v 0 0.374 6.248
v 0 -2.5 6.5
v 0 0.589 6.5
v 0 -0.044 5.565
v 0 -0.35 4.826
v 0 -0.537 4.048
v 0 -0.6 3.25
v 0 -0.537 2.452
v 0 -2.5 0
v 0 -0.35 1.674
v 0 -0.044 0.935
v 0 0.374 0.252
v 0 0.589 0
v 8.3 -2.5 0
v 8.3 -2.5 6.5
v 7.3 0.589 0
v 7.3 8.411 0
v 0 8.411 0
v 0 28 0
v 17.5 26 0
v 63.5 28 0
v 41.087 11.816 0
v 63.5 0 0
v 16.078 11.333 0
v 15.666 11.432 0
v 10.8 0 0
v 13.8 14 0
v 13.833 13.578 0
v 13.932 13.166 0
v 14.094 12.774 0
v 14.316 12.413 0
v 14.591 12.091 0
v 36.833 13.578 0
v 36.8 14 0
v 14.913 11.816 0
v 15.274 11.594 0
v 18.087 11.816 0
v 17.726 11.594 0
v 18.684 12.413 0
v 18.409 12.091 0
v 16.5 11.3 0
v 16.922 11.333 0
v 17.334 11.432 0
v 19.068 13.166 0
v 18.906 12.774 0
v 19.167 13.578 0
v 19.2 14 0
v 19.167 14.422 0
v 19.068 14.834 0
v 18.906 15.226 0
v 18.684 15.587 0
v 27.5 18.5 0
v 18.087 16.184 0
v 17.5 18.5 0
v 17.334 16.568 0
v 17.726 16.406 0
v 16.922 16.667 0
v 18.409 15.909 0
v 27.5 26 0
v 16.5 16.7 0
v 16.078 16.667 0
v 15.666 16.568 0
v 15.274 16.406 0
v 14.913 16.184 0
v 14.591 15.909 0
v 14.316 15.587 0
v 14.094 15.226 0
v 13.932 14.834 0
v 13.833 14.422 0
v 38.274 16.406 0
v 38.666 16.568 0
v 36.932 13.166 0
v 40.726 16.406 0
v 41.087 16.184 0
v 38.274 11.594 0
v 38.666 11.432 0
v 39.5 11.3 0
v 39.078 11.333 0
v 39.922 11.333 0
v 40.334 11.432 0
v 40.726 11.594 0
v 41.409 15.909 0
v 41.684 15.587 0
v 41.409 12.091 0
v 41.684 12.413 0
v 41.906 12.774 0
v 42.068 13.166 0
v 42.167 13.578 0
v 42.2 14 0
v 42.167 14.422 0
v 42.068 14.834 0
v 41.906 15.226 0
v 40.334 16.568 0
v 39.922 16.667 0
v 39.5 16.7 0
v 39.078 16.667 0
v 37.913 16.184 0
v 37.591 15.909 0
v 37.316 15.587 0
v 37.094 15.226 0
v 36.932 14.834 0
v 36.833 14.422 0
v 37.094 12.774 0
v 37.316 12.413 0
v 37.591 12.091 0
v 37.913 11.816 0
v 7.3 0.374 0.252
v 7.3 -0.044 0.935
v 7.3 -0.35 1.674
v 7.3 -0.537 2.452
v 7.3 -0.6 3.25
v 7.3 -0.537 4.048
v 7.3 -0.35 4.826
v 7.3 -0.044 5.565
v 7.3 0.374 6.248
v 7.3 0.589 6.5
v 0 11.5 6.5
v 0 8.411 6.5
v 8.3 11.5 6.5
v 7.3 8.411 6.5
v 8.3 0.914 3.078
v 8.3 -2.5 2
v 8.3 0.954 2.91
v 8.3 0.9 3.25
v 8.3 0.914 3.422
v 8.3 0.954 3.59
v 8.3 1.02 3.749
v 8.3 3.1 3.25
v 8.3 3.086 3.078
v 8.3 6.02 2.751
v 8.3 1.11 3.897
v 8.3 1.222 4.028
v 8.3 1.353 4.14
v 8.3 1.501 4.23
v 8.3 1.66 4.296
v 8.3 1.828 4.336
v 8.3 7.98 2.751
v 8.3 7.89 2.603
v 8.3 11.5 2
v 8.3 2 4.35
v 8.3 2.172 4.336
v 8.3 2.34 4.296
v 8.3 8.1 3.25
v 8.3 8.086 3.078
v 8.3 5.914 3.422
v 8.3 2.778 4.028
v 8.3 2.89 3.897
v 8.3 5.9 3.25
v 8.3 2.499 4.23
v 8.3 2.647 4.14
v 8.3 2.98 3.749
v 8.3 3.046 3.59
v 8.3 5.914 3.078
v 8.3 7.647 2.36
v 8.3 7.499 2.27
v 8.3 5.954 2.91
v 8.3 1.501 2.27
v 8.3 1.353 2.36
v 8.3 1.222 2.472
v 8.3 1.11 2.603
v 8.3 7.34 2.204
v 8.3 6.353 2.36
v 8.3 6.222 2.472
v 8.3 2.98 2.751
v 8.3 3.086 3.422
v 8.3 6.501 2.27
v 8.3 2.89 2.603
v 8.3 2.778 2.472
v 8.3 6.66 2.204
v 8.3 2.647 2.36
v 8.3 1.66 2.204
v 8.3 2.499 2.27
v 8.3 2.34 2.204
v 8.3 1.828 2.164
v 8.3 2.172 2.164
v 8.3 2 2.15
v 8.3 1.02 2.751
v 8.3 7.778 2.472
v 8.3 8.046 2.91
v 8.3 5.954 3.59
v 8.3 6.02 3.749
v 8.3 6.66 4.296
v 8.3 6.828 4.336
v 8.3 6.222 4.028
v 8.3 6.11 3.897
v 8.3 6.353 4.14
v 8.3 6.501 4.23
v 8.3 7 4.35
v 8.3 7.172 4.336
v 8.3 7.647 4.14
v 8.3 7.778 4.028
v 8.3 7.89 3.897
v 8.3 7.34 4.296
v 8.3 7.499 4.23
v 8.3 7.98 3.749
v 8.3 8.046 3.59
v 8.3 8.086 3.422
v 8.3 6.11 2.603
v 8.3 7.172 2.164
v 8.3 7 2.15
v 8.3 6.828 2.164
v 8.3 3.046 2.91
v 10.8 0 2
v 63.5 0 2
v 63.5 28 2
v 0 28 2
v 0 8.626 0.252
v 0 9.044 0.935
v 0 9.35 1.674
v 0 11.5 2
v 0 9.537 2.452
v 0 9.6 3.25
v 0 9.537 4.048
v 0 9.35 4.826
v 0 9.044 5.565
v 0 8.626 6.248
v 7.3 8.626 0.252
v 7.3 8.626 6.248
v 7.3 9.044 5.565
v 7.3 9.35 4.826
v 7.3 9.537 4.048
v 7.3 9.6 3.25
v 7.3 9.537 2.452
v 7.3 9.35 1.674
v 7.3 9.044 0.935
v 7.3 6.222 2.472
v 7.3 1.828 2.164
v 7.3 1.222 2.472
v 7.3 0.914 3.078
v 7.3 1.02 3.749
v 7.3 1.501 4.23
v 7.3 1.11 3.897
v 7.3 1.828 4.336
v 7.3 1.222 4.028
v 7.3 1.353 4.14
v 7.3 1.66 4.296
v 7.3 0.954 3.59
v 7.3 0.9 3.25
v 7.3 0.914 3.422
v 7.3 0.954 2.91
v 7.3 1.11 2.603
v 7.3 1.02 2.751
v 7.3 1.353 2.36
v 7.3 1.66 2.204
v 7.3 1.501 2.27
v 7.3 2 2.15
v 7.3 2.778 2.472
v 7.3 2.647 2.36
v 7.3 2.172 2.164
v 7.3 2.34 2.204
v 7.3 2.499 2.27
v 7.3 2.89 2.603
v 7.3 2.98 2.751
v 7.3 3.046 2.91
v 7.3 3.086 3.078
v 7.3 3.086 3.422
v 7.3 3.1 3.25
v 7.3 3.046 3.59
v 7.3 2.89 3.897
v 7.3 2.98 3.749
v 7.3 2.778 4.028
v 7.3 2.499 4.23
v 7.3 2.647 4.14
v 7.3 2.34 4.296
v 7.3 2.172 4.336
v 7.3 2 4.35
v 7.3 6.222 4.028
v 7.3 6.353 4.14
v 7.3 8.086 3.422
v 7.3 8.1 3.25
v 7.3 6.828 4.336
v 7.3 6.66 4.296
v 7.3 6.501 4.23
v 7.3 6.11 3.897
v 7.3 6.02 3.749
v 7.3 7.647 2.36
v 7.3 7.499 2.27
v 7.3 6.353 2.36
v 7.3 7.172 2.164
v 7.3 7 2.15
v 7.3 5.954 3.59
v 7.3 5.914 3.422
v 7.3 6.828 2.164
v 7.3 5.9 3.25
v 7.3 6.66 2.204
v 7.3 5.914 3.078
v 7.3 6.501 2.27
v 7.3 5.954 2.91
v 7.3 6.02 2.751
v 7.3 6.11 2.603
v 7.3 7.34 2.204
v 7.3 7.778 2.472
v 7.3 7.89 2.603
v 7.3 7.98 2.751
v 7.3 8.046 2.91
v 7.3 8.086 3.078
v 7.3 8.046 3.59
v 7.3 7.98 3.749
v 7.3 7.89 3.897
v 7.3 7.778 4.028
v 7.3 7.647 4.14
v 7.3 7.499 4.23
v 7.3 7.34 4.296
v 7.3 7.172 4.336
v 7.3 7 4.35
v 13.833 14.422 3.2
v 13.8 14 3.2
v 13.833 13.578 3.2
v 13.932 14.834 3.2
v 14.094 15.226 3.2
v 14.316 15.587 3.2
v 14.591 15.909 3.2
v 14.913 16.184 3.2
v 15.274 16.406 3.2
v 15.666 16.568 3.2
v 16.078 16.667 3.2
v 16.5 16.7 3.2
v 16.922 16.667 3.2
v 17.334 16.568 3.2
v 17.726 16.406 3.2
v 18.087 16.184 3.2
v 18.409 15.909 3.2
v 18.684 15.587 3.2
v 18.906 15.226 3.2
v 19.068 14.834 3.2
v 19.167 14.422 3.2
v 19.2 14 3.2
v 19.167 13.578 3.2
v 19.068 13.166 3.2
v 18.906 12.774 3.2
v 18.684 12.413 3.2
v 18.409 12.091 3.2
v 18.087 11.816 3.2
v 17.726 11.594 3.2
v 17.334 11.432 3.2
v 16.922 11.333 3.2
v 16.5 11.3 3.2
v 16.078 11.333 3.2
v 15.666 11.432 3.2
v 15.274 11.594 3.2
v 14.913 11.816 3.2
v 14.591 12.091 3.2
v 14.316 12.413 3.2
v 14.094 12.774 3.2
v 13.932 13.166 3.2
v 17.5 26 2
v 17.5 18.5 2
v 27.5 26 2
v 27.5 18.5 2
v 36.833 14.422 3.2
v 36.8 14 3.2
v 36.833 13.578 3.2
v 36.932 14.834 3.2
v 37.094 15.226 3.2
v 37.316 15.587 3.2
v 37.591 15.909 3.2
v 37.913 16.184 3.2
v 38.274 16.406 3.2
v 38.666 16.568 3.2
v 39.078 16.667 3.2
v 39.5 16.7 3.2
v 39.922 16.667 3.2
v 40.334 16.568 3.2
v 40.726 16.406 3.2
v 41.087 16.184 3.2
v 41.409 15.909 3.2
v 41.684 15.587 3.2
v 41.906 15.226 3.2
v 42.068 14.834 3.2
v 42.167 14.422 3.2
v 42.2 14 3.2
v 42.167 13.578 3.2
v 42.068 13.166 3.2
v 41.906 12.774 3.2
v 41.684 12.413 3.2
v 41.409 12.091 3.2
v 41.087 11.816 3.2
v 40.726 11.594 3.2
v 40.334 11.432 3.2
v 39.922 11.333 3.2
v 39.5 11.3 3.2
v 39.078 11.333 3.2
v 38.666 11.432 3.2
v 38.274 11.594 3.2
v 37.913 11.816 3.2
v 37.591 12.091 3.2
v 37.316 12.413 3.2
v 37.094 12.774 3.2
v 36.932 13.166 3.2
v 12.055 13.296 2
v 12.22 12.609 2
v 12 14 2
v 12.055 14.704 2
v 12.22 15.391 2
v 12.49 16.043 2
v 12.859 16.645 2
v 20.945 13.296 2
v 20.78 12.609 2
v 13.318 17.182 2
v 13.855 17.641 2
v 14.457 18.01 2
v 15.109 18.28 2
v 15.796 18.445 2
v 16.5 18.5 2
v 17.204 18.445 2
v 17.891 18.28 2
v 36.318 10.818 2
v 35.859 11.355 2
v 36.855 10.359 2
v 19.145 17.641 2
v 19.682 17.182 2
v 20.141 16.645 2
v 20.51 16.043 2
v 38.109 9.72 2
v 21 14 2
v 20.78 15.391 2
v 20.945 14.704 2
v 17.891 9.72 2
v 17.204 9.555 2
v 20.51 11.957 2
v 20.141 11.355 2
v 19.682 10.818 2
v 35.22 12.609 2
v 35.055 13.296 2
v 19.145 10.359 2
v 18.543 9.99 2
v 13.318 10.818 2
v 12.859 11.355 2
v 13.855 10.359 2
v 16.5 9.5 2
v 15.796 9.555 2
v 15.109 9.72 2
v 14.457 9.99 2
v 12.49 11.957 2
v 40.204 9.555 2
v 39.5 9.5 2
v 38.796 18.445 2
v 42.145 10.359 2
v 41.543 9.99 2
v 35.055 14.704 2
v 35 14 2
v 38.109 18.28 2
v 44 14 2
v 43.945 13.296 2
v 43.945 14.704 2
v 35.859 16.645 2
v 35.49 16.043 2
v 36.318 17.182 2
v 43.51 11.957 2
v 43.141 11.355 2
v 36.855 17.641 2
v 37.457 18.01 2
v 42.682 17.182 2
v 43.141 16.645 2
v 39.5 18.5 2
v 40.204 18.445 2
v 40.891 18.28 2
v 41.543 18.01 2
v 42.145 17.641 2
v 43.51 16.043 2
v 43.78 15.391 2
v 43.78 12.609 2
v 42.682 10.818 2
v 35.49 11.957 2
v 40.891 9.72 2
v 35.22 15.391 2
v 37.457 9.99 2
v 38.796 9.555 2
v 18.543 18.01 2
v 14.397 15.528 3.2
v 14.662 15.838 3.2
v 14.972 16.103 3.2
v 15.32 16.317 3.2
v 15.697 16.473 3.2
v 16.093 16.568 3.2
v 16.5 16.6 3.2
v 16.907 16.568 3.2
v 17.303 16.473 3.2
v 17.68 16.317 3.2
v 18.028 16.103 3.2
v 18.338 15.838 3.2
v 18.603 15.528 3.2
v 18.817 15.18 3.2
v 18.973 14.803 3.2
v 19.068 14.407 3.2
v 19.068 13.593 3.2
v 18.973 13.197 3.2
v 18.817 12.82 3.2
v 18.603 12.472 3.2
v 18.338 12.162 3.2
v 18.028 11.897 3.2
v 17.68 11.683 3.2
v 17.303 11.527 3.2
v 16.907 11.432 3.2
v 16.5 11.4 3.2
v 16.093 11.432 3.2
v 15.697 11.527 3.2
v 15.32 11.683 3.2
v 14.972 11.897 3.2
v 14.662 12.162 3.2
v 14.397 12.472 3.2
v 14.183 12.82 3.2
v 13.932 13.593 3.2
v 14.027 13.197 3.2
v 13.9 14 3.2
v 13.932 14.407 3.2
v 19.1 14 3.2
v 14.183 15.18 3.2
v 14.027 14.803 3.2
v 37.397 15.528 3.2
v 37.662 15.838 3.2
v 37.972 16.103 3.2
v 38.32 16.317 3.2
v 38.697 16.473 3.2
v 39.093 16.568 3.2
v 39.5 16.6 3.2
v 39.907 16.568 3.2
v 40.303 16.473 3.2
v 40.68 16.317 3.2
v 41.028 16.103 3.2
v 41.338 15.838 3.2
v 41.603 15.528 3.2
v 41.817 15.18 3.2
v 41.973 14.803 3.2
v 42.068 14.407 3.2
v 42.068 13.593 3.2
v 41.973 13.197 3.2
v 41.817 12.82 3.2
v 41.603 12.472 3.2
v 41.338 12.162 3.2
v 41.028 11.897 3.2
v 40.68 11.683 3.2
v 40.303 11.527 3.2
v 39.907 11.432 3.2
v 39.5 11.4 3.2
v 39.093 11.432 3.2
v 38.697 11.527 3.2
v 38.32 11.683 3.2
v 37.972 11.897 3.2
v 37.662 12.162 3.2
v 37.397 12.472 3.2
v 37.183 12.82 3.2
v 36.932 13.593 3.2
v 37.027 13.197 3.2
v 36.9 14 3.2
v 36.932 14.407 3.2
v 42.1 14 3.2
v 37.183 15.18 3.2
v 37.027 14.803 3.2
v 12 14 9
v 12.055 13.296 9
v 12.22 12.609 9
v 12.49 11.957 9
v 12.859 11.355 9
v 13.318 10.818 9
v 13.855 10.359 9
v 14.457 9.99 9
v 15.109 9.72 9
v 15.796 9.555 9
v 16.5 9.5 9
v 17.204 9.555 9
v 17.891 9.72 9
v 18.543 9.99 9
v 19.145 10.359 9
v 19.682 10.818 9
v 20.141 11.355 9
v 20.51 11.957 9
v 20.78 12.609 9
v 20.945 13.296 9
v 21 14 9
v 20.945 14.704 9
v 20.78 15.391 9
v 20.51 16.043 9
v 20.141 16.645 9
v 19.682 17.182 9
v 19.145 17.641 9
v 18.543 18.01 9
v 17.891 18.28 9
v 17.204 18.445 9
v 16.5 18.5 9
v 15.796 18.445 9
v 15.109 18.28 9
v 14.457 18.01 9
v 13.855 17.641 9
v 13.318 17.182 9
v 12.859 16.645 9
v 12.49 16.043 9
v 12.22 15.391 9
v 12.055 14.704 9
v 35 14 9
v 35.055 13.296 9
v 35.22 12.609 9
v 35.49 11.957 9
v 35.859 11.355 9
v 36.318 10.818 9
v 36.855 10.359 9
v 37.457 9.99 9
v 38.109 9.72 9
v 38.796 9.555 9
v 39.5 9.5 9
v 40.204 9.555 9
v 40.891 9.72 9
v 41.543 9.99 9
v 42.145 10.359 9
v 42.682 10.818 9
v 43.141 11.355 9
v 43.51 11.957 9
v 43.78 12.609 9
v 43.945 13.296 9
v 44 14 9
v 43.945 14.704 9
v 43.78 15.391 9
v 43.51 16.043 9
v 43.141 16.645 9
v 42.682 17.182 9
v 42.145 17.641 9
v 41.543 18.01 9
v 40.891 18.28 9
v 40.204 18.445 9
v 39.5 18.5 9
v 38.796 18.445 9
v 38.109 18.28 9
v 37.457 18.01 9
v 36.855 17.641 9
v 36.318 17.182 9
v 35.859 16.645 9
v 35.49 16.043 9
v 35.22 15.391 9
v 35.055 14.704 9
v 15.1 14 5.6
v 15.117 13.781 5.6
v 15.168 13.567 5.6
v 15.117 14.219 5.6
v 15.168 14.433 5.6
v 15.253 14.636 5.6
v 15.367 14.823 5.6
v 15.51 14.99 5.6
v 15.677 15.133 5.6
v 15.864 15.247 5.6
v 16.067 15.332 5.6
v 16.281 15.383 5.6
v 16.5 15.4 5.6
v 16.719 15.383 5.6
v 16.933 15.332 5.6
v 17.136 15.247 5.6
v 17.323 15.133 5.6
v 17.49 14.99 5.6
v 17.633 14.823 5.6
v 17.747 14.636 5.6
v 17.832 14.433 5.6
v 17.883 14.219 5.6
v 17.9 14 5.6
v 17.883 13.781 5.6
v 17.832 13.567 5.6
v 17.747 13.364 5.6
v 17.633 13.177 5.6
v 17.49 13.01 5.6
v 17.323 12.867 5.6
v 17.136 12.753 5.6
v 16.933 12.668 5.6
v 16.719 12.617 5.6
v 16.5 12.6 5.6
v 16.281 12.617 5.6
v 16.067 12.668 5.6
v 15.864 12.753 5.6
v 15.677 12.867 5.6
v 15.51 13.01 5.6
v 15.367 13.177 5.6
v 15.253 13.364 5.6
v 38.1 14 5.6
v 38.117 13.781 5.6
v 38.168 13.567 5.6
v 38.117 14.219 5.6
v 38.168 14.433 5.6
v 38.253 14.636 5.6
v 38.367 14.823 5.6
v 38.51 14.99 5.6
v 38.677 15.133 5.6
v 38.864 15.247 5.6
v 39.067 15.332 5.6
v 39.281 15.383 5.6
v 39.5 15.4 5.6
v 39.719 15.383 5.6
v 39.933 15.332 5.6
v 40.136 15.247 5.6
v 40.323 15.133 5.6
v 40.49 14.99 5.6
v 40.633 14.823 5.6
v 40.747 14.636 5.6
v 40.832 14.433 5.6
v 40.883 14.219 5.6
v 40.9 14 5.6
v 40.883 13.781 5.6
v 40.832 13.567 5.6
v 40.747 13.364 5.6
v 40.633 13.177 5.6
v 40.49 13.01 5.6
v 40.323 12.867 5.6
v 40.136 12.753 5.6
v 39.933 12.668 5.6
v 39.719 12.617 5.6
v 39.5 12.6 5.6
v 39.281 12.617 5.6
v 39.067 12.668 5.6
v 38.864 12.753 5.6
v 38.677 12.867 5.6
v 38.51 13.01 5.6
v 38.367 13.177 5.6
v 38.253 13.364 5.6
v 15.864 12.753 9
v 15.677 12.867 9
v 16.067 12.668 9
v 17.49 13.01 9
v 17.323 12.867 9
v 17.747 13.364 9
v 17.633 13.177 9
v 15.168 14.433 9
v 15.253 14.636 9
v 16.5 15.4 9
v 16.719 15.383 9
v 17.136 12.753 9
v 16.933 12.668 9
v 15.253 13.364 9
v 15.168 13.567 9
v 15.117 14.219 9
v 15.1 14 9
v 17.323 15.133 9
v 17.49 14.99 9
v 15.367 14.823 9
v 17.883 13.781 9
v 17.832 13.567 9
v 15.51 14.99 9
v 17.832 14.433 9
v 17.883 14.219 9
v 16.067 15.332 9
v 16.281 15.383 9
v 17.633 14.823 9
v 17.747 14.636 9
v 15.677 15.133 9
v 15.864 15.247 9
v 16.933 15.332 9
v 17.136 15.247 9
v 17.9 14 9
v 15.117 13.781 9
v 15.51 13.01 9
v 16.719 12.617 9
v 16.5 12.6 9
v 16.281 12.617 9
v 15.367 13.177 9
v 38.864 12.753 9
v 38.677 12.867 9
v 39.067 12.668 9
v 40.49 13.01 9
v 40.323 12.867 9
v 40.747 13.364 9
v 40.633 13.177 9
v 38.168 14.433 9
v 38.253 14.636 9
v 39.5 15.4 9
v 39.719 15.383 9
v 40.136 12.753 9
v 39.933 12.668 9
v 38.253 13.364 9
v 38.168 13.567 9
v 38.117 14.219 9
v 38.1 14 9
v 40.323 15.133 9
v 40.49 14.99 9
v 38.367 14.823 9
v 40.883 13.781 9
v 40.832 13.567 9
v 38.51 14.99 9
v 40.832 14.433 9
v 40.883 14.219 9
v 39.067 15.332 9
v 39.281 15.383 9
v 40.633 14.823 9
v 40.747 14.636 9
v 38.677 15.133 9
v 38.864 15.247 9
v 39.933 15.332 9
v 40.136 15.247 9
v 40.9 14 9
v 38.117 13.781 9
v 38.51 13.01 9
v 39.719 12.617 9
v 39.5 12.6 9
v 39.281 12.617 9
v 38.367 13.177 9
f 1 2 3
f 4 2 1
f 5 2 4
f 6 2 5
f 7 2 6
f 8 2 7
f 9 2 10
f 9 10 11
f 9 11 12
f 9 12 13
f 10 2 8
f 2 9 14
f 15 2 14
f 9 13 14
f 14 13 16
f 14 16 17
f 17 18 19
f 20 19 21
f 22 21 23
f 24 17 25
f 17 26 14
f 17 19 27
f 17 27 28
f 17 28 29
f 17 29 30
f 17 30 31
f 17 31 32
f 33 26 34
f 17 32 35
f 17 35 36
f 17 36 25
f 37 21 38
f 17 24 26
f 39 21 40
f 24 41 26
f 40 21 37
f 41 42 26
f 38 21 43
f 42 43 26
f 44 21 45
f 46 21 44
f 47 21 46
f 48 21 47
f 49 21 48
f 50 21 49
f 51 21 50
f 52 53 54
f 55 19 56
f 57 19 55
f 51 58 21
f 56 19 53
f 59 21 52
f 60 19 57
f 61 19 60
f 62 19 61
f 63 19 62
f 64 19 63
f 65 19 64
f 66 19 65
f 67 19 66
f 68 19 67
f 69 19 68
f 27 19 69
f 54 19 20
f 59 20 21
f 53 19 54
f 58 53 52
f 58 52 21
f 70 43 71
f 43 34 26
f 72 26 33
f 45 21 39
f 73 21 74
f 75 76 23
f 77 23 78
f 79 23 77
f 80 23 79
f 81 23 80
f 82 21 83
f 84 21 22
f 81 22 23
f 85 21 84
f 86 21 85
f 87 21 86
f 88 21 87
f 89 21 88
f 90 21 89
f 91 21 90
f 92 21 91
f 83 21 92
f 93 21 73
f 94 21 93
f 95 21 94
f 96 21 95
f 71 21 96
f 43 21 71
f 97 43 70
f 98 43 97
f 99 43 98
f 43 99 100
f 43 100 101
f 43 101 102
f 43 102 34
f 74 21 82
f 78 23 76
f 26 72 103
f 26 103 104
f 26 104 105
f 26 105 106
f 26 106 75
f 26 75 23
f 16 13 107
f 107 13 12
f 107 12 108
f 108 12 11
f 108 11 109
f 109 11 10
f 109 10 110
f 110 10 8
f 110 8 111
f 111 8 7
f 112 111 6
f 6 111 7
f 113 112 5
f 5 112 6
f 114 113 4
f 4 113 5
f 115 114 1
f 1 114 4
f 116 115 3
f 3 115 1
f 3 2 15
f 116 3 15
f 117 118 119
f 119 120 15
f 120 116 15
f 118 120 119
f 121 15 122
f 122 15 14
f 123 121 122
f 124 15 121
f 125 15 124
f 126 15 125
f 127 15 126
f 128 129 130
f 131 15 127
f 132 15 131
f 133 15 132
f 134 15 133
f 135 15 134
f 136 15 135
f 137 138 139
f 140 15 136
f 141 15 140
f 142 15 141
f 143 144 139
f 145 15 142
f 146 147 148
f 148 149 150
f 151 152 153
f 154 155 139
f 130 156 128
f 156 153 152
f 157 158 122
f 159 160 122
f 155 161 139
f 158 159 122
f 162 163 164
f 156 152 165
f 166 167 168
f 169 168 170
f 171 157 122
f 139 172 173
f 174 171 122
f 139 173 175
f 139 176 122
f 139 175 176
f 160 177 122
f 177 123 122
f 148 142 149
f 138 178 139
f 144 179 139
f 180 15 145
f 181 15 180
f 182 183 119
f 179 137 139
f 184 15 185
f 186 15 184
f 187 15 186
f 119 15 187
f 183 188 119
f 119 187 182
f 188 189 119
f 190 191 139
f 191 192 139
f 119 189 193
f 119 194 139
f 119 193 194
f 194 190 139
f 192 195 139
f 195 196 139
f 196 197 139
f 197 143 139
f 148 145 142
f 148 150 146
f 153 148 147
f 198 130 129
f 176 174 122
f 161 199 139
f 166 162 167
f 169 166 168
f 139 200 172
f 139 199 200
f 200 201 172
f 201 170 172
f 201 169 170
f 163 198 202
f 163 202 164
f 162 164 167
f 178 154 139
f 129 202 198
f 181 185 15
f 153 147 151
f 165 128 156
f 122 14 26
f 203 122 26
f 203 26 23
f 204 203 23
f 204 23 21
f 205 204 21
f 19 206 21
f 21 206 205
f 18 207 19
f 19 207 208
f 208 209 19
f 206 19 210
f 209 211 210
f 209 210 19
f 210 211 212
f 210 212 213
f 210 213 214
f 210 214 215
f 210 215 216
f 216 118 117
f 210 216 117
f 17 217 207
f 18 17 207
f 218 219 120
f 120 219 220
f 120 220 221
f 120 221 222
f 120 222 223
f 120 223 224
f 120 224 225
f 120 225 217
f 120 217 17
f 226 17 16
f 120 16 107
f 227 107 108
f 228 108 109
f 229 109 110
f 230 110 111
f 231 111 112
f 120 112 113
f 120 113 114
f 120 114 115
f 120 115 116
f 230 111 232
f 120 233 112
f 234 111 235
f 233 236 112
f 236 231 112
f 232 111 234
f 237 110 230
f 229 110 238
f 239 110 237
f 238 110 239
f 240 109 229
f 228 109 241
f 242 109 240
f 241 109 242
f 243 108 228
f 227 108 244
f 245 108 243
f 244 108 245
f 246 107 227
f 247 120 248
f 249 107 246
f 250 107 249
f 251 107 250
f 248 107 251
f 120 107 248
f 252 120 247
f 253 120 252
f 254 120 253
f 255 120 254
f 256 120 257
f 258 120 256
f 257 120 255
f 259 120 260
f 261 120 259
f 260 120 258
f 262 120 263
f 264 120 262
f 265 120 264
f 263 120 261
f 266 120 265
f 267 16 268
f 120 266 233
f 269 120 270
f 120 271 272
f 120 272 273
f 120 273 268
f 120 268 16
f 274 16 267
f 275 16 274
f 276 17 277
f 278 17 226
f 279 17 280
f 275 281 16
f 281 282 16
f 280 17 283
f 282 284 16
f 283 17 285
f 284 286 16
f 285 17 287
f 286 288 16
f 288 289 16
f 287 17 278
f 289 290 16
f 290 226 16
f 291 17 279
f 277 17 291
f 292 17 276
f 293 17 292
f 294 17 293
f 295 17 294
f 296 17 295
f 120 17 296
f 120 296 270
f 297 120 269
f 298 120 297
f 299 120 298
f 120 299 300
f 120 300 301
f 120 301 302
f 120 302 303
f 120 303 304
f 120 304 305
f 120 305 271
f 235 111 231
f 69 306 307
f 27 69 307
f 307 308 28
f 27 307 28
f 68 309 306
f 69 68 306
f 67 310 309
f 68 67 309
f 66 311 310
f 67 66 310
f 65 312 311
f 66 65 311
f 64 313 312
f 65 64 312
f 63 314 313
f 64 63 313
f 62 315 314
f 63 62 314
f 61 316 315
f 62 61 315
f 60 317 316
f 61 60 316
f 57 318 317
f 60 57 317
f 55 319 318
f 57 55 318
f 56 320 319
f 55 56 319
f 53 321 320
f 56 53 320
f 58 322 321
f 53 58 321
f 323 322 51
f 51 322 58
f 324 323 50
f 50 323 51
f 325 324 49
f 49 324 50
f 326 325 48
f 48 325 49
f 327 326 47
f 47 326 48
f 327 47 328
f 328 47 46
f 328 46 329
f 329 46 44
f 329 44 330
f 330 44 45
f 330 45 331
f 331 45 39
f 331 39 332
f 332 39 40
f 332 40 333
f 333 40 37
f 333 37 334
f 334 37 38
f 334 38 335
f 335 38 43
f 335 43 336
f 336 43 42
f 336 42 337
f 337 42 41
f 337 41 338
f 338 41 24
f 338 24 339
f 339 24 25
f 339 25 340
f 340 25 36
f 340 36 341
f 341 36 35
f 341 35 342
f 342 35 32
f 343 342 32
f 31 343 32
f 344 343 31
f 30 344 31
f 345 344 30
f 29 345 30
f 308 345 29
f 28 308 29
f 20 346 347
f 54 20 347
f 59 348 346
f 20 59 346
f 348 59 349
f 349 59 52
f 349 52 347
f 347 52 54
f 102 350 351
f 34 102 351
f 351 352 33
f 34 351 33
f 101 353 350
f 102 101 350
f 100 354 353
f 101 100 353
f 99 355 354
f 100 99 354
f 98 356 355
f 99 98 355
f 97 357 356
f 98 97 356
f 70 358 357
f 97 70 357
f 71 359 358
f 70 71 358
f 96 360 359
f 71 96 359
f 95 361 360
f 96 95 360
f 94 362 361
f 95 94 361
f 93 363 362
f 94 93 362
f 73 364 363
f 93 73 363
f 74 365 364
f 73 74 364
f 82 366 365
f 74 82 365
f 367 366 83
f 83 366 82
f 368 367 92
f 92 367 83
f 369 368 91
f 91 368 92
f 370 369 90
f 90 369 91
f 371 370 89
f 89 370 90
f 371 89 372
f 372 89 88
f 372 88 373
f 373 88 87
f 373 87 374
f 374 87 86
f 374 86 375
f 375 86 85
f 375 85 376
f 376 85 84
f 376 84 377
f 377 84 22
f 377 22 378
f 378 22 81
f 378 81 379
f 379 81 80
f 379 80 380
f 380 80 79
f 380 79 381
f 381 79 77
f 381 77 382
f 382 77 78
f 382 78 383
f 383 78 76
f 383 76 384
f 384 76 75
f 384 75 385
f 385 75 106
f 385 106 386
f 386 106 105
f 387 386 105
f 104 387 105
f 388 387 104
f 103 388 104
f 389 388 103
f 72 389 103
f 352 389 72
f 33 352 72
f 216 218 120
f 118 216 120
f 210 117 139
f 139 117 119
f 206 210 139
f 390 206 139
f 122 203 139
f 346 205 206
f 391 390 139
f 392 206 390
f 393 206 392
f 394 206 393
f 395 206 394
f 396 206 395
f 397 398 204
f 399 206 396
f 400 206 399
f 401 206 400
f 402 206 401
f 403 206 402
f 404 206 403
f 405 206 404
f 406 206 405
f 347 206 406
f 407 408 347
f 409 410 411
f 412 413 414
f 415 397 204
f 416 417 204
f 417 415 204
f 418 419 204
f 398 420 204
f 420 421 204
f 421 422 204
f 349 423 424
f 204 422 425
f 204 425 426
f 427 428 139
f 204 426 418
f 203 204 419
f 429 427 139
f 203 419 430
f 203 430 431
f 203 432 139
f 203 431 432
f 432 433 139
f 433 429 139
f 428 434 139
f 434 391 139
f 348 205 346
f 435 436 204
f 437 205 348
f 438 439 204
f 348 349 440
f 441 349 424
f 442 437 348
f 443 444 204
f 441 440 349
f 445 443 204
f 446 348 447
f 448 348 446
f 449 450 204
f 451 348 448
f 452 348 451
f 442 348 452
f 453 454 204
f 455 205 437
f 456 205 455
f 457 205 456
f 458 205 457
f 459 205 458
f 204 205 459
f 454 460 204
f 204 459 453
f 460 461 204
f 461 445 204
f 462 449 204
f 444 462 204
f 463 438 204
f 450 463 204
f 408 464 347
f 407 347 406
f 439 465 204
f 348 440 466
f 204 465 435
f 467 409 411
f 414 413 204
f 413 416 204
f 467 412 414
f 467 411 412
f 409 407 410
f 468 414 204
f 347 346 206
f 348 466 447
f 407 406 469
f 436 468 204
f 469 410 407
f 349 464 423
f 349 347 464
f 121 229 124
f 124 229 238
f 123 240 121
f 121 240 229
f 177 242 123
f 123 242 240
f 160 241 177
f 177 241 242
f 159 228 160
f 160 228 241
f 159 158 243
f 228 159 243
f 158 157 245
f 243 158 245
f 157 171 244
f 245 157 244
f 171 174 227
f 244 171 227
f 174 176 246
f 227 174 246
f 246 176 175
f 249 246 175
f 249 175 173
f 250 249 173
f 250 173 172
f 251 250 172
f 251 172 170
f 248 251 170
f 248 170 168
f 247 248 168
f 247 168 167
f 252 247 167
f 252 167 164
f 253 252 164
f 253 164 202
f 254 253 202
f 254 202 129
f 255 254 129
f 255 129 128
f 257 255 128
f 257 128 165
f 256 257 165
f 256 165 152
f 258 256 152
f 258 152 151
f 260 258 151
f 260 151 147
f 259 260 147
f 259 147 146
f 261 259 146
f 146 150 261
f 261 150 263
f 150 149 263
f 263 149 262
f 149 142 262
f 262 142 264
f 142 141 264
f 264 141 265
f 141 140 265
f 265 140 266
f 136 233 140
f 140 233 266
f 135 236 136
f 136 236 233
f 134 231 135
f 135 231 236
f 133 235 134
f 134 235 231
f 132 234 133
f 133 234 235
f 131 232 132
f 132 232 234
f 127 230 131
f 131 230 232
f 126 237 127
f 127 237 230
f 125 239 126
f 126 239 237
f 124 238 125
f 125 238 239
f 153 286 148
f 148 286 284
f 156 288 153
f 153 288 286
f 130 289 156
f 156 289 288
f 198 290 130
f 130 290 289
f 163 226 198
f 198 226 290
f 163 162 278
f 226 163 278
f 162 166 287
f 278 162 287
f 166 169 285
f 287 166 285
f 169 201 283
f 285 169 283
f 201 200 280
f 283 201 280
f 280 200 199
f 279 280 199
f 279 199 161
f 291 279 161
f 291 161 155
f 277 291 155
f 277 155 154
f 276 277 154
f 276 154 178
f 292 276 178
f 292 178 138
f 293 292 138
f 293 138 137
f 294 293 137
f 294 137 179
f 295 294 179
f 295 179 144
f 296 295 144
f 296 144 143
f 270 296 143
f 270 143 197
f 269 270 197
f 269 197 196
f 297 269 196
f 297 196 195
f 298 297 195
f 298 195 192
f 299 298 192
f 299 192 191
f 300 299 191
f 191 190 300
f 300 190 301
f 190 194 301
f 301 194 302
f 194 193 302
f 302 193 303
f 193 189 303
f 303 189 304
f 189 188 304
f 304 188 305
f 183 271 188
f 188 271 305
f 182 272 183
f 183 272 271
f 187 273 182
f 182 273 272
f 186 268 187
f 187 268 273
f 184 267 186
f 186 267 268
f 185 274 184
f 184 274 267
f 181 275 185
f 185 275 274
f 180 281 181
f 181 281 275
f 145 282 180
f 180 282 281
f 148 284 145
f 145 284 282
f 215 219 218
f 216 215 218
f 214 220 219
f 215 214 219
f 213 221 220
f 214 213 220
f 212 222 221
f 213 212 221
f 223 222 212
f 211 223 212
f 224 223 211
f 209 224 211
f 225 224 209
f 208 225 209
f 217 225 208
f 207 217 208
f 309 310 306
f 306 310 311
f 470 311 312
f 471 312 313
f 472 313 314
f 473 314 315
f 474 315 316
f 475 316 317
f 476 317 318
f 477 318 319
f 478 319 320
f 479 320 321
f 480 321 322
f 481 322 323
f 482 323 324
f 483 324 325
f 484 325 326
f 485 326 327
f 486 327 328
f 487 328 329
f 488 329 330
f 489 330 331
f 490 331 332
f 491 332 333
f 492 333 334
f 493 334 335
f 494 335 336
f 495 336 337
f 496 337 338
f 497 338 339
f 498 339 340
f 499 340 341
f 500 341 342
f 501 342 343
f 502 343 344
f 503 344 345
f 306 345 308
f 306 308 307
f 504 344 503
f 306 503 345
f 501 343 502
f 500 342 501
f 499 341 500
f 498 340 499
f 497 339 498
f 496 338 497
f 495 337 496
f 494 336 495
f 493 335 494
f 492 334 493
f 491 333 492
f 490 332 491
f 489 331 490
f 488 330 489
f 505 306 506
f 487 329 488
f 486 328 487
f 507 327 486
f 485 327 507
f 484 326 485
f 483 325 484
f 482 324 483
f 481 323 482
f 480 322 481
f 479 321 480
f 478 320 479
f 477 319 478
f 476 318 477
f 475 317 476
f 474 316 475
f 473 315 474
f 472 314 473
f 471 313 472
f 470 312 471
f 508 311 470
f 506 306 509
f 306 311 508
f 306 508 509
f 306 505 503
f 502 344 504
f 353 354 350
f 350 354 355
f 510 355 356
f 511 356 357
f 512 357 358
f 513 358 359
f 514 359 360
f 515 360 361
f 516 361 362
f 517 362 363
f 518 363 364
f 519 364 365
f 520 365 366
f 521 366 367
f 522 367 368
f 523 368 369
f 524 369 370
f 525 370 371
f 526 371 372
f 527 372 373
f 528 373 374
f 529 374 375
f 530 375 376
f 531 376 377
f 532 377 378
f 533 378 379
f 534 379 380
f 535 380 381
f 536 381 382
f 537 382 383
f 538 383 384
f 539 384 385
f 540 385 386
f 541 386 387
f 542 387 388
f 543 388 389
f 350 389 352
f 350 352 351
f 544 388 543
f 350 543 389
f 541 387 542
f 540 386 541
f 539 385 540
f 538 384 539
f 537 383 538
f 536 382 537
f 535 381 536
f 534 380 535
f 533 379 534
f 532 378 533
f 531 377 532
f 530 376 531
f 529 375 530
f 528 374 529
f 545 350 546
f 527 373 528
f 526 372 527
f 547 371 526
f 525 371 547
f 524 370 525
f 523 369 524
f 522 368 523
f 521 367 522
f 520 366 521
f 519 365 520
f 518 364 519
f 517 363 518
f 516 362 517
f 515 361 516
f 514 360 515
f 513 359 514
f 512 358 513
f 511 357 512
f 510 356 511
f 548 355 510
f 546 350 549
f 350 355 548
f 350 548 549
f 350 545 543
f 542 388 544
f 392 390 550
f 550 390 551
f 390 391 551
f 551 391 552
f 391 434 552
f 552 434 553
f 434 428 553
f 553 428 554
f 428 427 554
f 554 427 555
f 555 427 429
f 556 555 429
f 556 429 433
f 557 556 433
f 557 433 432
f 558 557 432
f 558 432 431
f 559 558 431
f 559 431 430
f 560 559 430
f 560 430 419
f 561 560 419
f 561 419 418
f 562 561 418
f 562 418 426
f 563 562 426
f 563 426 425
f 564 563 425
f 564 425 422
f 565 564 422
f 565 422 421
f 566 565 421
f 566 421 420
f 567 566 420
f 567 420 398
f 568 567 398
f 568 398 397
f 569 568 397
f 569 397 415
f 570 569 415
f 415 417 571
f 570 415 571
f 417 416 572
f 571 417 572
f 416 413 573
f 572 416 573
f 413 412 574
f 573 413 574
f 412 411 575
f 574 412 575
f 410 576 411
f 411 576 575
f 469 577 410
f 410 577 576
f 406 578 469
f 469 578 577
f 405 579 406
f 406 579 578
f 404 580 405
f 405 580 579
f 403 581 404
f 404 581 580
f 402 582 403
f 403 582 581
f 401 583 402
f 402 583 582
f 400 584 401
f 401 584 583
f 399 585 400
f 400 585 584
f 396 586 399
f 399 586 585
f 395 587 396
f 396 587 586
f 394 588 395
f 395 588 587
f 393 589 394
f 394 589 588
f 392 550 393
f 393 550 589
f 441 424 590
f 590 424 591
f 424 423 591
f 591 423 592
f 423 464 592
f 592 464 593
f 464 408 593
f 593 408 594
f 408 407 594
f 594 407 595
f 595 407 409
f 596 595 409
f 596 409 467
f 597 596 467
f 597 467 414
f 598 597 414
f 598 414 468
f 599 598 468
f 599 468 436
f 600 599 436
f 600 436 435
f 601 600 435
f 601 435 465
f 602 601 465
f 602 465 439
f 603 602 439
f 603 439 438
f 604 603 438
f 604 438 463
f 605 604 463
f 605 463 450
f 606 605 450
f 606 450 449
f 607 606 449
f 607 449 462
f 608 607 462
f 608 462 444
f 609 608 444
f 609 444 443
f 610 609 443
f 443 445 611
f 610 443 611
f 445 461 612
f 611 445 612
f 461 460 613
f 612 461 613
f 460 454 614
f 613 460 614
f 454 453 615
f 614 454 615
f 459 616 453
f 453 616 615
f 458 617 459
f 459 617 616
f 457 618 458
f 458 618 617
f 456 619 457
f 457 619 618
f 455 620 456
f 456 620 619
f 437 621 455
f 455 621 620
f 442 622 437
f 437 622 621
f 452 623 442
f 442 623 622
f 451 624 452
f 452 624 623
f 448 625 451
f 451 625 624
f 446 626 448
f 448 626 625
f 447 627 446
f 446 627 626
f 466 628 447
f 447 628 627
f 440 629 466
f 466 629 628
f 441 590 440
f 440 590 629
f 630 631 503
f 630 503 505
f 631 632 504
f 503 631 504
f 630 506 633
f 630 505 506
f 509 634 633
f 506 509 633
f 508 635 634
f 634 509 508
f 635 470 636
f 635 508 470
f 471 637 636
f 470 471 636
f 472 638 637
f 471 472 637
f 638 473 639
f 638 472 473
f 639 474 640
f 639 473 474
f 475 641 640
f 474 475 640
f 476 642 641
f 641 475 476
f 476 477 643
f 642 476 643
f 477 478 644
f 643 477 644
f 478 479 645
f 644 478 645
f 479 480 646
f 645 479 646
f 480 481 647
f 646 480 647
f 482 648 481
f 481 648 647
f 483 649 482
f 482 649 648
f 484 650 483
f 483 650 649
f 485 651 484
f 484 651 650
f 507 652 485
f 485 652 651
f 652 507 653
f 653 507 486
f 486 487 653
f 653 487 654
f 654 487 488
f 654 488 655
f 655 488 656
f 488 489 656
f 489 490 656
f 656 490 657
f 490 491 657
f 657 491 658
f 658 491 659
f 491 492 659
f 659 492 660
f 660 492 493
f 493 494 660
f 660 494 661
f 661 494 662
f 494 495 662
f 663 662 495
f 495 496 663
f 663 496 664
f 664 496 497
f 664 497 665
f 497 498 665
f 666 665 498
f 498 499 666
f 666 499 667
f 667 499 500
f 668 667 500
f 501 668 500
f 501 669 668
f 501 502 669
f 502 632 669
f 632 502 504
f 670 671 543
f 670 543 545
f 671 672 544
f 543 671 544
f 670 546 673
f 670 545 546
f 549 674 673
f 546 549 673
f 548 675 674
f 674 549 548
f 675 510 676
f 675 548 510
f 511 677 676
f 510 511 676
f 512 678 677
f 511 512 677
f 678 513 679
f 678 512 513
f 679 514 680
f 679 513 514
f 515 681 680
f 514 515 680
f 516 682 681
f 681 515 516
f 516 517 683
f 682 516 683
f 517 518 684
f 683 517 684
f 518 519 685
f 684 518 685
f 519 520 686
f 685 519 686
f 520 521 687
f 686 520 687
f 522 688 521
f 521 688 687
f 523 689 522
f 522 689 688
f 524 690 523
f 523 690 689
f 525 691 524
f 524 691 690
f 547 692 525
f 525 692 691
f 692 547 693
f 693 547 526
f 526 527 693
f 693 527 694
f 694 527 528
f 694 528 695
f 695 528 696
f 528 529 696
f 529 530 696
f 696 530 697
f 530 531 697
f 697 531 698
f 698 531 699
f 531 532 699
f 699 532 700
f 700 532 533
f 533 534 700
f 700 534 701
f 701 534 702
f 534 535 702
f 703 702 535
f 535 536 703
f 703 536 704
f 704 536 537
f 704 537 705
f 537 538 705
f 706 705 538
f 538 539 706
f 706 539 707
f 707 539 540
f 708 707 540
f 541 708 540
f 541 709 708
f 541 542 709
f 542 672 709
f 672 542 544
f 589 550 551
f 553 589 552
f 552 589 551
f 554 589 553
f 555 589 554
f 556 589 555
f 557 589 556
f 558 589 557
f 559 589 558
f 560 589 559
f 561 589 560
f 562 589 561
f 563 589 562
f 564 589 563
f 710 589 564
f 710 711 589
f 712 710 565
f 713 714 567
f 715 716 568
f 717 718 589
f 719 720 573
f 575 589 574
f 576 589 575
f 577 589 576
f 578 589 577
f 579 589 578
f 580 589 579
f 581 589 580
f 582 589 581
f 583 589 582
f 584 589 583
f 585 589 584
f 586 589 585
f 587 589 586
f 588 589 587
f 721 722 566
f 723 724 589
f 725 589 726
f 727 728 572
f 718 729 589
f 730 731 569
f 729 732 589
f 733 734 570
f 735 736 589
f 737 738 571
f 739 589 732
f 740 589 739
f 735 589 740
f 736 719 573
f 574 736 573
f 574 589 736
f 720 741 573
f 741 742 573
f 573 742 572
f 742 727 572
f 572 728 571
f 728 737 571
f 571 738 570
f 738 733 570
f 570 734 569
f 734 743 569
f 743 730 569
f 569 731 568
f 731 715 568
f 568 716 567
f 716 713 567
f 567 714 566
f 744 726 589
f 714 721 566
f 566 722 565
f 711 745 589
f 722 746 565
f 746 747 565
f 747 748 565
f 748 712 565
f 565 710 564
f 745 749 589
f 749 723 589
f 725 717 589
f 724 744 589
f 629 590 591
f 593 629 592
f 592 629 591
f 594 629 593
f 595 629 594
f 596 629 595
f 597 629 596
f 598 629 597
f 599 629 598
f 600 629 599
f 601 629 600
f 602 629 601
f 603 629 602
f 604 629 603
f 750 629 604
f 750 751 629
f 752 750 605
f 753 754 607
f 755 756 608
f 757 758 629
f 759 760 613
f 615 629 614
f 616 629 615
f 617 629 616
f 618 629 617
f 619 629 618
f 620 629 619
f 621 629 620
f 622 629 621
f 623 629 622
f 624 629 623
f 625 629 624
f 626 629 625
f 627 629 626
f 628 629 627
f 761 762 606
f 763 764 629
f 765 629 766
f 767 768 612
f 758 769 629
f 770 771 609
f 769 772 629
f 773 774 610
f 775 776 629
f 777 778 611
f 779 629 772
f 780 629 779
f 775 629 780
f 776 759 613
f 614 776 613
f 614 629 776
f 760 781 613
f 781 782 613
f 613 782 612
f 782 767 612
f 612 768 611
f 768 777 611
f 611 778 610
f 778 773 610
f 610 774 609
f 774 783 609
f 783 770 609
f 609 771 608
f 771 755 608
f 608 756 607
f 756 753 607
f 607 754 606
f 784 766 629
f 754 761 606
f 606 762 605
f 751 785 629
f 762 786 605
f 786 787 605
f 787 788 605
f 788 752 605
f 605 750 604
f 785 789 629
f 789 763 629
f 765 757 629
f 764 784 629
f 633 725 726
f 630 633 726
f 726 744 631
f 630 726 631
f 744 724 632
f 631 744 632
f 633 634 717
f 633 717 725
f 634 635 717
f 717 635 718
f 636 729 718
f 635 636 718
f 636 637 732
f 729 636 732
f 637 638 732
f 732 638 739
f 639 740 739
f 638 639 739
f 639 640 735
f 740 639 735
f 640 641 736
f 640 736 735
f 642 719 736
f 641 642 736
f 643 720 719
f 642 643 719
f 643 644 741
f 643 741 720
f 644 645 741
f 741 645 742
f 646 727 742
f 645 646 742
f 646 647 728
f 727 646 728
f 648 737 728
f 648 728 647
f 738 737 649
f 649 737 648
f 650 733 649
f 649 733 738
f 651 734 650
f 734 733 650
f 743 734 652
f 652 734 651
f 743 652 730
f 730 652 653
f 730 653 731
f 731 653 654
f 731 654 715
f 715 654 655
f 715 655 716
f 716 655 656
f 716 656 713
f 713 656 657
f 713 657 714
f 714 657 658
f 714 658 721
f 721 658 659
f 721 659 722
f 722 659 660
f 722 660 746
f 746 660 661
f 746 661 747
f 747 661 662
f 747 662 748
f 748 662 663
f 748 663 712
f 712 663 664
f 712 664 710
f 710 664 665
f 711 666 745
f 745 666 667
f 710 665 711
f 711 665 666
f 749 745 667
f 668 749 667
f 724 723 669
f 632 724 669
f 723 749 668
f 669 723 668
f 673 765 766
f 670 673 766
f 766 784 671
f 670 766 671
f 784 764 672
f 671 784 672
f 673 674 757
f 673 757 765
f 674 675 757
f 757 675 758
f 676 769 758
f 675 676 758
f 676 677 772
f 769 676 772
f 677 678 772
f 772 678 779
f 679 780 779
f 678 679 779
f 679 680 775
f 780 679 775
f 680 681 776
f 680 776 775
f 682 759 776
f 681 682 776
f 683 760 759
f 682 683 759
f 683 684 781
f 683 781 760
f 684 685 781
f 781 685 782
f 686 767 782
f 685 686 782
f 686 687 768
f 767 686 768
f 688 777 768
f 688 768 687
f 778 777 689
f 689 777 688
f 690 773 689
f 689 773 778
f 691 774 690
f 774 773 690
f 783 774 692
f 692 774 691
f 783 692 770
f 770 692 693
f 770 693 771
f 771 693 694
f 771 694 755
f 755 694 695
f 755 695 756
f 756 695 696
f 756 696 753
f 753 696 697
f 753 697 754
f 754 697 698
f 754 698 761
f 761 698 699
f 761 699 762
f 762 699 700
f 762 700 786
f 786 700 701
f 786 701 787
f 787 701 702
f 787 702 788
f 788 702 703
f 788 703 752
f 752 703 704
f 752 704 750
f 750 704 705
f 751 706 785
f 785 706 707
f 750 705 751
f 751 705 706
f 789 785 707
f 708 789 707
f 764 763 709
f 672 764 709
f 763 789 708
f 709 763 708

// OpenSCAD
// Insulator for sensor board with mounting for ultrasonic transducer

$fn=40;
thickness = 2;
holeY=14;
hole1X=16.5;
hole2X=hole1X+23;
transducerY = 4.5;
pillarHeight = 7.0;
transducerZ = 3.25;	// transducer is 0,5mm off the board
transducerR=5.1;
overlap=1;

difference() {
	union() {
		// main plate
		cube([63.5,28,thickness]);
		// pillars
		translate([hole1X,holeY,thickness-overlap]) cylinder(h=pillarHeight+overlap,r=4.5);
		translate([hole2X,holeY,thickness-overlap]) cylinder(h=pillarHeight+overlap,r=4.5);
		// transducer block
		translate([0,transducerY-7,0]) cube([8.3,14,pillarHeight+thickness-2.5]);
		// fillet between transducer block and plate
		translate([8.3,transducerY-7,0]) rotate([0,0,45]) cube([5,5,thickness]);
	}
	// screw holes in pillars
	translate([hole1X,holeY,-overlap]) cylinder(h=20,r=1.4);
	translate([hole2X,holeY,-overlap]) cylinder(h=20,r=1.4);
	// countersinks, leaving about 3mm of screw to tap into the heatsink duct
	translate([hole1X,holeY,pillarHeight-3.9]) cylinder(r1=2.65,r2=0,h=5.3);
	translate([hole2X,holeY,pillarHeight-3.9]) cylinder(r1=2.65,r2=0,h=5.3);
	// holes for the screw heads, overlapping the countersinks by 0.1mm
	translate([hole1X,holeY,-overlap]) cylinder(r=2.7,h=pillarHeight-3.8+overlap);
	translate([hole2X,holeY,-overlap]) cylinder(r=2.7,h=pillarHeight-3.8+overlap);
	// hole for the transducer
	translate([-overlap,transducerY,transducerZ]) rotate([0,90,0]) cylinder(r=transducerR,h=8.3);
	// holes for the transducer wires
	translate([0,transducerY-2.5,transducerZ]) rotate([0,90,0]) cylinder(r=1.1,h=10);
	translate([0,transducerY+2.5,transducerZ]) rotate([0,90,0]) cylinder(r=1.1,h=10);
	// cutout to allow in-situ programming
	translate([hole1X+1,holeY+4.5,-overlap]) cube([10,7.5,thickness+2*overlap]);
}
